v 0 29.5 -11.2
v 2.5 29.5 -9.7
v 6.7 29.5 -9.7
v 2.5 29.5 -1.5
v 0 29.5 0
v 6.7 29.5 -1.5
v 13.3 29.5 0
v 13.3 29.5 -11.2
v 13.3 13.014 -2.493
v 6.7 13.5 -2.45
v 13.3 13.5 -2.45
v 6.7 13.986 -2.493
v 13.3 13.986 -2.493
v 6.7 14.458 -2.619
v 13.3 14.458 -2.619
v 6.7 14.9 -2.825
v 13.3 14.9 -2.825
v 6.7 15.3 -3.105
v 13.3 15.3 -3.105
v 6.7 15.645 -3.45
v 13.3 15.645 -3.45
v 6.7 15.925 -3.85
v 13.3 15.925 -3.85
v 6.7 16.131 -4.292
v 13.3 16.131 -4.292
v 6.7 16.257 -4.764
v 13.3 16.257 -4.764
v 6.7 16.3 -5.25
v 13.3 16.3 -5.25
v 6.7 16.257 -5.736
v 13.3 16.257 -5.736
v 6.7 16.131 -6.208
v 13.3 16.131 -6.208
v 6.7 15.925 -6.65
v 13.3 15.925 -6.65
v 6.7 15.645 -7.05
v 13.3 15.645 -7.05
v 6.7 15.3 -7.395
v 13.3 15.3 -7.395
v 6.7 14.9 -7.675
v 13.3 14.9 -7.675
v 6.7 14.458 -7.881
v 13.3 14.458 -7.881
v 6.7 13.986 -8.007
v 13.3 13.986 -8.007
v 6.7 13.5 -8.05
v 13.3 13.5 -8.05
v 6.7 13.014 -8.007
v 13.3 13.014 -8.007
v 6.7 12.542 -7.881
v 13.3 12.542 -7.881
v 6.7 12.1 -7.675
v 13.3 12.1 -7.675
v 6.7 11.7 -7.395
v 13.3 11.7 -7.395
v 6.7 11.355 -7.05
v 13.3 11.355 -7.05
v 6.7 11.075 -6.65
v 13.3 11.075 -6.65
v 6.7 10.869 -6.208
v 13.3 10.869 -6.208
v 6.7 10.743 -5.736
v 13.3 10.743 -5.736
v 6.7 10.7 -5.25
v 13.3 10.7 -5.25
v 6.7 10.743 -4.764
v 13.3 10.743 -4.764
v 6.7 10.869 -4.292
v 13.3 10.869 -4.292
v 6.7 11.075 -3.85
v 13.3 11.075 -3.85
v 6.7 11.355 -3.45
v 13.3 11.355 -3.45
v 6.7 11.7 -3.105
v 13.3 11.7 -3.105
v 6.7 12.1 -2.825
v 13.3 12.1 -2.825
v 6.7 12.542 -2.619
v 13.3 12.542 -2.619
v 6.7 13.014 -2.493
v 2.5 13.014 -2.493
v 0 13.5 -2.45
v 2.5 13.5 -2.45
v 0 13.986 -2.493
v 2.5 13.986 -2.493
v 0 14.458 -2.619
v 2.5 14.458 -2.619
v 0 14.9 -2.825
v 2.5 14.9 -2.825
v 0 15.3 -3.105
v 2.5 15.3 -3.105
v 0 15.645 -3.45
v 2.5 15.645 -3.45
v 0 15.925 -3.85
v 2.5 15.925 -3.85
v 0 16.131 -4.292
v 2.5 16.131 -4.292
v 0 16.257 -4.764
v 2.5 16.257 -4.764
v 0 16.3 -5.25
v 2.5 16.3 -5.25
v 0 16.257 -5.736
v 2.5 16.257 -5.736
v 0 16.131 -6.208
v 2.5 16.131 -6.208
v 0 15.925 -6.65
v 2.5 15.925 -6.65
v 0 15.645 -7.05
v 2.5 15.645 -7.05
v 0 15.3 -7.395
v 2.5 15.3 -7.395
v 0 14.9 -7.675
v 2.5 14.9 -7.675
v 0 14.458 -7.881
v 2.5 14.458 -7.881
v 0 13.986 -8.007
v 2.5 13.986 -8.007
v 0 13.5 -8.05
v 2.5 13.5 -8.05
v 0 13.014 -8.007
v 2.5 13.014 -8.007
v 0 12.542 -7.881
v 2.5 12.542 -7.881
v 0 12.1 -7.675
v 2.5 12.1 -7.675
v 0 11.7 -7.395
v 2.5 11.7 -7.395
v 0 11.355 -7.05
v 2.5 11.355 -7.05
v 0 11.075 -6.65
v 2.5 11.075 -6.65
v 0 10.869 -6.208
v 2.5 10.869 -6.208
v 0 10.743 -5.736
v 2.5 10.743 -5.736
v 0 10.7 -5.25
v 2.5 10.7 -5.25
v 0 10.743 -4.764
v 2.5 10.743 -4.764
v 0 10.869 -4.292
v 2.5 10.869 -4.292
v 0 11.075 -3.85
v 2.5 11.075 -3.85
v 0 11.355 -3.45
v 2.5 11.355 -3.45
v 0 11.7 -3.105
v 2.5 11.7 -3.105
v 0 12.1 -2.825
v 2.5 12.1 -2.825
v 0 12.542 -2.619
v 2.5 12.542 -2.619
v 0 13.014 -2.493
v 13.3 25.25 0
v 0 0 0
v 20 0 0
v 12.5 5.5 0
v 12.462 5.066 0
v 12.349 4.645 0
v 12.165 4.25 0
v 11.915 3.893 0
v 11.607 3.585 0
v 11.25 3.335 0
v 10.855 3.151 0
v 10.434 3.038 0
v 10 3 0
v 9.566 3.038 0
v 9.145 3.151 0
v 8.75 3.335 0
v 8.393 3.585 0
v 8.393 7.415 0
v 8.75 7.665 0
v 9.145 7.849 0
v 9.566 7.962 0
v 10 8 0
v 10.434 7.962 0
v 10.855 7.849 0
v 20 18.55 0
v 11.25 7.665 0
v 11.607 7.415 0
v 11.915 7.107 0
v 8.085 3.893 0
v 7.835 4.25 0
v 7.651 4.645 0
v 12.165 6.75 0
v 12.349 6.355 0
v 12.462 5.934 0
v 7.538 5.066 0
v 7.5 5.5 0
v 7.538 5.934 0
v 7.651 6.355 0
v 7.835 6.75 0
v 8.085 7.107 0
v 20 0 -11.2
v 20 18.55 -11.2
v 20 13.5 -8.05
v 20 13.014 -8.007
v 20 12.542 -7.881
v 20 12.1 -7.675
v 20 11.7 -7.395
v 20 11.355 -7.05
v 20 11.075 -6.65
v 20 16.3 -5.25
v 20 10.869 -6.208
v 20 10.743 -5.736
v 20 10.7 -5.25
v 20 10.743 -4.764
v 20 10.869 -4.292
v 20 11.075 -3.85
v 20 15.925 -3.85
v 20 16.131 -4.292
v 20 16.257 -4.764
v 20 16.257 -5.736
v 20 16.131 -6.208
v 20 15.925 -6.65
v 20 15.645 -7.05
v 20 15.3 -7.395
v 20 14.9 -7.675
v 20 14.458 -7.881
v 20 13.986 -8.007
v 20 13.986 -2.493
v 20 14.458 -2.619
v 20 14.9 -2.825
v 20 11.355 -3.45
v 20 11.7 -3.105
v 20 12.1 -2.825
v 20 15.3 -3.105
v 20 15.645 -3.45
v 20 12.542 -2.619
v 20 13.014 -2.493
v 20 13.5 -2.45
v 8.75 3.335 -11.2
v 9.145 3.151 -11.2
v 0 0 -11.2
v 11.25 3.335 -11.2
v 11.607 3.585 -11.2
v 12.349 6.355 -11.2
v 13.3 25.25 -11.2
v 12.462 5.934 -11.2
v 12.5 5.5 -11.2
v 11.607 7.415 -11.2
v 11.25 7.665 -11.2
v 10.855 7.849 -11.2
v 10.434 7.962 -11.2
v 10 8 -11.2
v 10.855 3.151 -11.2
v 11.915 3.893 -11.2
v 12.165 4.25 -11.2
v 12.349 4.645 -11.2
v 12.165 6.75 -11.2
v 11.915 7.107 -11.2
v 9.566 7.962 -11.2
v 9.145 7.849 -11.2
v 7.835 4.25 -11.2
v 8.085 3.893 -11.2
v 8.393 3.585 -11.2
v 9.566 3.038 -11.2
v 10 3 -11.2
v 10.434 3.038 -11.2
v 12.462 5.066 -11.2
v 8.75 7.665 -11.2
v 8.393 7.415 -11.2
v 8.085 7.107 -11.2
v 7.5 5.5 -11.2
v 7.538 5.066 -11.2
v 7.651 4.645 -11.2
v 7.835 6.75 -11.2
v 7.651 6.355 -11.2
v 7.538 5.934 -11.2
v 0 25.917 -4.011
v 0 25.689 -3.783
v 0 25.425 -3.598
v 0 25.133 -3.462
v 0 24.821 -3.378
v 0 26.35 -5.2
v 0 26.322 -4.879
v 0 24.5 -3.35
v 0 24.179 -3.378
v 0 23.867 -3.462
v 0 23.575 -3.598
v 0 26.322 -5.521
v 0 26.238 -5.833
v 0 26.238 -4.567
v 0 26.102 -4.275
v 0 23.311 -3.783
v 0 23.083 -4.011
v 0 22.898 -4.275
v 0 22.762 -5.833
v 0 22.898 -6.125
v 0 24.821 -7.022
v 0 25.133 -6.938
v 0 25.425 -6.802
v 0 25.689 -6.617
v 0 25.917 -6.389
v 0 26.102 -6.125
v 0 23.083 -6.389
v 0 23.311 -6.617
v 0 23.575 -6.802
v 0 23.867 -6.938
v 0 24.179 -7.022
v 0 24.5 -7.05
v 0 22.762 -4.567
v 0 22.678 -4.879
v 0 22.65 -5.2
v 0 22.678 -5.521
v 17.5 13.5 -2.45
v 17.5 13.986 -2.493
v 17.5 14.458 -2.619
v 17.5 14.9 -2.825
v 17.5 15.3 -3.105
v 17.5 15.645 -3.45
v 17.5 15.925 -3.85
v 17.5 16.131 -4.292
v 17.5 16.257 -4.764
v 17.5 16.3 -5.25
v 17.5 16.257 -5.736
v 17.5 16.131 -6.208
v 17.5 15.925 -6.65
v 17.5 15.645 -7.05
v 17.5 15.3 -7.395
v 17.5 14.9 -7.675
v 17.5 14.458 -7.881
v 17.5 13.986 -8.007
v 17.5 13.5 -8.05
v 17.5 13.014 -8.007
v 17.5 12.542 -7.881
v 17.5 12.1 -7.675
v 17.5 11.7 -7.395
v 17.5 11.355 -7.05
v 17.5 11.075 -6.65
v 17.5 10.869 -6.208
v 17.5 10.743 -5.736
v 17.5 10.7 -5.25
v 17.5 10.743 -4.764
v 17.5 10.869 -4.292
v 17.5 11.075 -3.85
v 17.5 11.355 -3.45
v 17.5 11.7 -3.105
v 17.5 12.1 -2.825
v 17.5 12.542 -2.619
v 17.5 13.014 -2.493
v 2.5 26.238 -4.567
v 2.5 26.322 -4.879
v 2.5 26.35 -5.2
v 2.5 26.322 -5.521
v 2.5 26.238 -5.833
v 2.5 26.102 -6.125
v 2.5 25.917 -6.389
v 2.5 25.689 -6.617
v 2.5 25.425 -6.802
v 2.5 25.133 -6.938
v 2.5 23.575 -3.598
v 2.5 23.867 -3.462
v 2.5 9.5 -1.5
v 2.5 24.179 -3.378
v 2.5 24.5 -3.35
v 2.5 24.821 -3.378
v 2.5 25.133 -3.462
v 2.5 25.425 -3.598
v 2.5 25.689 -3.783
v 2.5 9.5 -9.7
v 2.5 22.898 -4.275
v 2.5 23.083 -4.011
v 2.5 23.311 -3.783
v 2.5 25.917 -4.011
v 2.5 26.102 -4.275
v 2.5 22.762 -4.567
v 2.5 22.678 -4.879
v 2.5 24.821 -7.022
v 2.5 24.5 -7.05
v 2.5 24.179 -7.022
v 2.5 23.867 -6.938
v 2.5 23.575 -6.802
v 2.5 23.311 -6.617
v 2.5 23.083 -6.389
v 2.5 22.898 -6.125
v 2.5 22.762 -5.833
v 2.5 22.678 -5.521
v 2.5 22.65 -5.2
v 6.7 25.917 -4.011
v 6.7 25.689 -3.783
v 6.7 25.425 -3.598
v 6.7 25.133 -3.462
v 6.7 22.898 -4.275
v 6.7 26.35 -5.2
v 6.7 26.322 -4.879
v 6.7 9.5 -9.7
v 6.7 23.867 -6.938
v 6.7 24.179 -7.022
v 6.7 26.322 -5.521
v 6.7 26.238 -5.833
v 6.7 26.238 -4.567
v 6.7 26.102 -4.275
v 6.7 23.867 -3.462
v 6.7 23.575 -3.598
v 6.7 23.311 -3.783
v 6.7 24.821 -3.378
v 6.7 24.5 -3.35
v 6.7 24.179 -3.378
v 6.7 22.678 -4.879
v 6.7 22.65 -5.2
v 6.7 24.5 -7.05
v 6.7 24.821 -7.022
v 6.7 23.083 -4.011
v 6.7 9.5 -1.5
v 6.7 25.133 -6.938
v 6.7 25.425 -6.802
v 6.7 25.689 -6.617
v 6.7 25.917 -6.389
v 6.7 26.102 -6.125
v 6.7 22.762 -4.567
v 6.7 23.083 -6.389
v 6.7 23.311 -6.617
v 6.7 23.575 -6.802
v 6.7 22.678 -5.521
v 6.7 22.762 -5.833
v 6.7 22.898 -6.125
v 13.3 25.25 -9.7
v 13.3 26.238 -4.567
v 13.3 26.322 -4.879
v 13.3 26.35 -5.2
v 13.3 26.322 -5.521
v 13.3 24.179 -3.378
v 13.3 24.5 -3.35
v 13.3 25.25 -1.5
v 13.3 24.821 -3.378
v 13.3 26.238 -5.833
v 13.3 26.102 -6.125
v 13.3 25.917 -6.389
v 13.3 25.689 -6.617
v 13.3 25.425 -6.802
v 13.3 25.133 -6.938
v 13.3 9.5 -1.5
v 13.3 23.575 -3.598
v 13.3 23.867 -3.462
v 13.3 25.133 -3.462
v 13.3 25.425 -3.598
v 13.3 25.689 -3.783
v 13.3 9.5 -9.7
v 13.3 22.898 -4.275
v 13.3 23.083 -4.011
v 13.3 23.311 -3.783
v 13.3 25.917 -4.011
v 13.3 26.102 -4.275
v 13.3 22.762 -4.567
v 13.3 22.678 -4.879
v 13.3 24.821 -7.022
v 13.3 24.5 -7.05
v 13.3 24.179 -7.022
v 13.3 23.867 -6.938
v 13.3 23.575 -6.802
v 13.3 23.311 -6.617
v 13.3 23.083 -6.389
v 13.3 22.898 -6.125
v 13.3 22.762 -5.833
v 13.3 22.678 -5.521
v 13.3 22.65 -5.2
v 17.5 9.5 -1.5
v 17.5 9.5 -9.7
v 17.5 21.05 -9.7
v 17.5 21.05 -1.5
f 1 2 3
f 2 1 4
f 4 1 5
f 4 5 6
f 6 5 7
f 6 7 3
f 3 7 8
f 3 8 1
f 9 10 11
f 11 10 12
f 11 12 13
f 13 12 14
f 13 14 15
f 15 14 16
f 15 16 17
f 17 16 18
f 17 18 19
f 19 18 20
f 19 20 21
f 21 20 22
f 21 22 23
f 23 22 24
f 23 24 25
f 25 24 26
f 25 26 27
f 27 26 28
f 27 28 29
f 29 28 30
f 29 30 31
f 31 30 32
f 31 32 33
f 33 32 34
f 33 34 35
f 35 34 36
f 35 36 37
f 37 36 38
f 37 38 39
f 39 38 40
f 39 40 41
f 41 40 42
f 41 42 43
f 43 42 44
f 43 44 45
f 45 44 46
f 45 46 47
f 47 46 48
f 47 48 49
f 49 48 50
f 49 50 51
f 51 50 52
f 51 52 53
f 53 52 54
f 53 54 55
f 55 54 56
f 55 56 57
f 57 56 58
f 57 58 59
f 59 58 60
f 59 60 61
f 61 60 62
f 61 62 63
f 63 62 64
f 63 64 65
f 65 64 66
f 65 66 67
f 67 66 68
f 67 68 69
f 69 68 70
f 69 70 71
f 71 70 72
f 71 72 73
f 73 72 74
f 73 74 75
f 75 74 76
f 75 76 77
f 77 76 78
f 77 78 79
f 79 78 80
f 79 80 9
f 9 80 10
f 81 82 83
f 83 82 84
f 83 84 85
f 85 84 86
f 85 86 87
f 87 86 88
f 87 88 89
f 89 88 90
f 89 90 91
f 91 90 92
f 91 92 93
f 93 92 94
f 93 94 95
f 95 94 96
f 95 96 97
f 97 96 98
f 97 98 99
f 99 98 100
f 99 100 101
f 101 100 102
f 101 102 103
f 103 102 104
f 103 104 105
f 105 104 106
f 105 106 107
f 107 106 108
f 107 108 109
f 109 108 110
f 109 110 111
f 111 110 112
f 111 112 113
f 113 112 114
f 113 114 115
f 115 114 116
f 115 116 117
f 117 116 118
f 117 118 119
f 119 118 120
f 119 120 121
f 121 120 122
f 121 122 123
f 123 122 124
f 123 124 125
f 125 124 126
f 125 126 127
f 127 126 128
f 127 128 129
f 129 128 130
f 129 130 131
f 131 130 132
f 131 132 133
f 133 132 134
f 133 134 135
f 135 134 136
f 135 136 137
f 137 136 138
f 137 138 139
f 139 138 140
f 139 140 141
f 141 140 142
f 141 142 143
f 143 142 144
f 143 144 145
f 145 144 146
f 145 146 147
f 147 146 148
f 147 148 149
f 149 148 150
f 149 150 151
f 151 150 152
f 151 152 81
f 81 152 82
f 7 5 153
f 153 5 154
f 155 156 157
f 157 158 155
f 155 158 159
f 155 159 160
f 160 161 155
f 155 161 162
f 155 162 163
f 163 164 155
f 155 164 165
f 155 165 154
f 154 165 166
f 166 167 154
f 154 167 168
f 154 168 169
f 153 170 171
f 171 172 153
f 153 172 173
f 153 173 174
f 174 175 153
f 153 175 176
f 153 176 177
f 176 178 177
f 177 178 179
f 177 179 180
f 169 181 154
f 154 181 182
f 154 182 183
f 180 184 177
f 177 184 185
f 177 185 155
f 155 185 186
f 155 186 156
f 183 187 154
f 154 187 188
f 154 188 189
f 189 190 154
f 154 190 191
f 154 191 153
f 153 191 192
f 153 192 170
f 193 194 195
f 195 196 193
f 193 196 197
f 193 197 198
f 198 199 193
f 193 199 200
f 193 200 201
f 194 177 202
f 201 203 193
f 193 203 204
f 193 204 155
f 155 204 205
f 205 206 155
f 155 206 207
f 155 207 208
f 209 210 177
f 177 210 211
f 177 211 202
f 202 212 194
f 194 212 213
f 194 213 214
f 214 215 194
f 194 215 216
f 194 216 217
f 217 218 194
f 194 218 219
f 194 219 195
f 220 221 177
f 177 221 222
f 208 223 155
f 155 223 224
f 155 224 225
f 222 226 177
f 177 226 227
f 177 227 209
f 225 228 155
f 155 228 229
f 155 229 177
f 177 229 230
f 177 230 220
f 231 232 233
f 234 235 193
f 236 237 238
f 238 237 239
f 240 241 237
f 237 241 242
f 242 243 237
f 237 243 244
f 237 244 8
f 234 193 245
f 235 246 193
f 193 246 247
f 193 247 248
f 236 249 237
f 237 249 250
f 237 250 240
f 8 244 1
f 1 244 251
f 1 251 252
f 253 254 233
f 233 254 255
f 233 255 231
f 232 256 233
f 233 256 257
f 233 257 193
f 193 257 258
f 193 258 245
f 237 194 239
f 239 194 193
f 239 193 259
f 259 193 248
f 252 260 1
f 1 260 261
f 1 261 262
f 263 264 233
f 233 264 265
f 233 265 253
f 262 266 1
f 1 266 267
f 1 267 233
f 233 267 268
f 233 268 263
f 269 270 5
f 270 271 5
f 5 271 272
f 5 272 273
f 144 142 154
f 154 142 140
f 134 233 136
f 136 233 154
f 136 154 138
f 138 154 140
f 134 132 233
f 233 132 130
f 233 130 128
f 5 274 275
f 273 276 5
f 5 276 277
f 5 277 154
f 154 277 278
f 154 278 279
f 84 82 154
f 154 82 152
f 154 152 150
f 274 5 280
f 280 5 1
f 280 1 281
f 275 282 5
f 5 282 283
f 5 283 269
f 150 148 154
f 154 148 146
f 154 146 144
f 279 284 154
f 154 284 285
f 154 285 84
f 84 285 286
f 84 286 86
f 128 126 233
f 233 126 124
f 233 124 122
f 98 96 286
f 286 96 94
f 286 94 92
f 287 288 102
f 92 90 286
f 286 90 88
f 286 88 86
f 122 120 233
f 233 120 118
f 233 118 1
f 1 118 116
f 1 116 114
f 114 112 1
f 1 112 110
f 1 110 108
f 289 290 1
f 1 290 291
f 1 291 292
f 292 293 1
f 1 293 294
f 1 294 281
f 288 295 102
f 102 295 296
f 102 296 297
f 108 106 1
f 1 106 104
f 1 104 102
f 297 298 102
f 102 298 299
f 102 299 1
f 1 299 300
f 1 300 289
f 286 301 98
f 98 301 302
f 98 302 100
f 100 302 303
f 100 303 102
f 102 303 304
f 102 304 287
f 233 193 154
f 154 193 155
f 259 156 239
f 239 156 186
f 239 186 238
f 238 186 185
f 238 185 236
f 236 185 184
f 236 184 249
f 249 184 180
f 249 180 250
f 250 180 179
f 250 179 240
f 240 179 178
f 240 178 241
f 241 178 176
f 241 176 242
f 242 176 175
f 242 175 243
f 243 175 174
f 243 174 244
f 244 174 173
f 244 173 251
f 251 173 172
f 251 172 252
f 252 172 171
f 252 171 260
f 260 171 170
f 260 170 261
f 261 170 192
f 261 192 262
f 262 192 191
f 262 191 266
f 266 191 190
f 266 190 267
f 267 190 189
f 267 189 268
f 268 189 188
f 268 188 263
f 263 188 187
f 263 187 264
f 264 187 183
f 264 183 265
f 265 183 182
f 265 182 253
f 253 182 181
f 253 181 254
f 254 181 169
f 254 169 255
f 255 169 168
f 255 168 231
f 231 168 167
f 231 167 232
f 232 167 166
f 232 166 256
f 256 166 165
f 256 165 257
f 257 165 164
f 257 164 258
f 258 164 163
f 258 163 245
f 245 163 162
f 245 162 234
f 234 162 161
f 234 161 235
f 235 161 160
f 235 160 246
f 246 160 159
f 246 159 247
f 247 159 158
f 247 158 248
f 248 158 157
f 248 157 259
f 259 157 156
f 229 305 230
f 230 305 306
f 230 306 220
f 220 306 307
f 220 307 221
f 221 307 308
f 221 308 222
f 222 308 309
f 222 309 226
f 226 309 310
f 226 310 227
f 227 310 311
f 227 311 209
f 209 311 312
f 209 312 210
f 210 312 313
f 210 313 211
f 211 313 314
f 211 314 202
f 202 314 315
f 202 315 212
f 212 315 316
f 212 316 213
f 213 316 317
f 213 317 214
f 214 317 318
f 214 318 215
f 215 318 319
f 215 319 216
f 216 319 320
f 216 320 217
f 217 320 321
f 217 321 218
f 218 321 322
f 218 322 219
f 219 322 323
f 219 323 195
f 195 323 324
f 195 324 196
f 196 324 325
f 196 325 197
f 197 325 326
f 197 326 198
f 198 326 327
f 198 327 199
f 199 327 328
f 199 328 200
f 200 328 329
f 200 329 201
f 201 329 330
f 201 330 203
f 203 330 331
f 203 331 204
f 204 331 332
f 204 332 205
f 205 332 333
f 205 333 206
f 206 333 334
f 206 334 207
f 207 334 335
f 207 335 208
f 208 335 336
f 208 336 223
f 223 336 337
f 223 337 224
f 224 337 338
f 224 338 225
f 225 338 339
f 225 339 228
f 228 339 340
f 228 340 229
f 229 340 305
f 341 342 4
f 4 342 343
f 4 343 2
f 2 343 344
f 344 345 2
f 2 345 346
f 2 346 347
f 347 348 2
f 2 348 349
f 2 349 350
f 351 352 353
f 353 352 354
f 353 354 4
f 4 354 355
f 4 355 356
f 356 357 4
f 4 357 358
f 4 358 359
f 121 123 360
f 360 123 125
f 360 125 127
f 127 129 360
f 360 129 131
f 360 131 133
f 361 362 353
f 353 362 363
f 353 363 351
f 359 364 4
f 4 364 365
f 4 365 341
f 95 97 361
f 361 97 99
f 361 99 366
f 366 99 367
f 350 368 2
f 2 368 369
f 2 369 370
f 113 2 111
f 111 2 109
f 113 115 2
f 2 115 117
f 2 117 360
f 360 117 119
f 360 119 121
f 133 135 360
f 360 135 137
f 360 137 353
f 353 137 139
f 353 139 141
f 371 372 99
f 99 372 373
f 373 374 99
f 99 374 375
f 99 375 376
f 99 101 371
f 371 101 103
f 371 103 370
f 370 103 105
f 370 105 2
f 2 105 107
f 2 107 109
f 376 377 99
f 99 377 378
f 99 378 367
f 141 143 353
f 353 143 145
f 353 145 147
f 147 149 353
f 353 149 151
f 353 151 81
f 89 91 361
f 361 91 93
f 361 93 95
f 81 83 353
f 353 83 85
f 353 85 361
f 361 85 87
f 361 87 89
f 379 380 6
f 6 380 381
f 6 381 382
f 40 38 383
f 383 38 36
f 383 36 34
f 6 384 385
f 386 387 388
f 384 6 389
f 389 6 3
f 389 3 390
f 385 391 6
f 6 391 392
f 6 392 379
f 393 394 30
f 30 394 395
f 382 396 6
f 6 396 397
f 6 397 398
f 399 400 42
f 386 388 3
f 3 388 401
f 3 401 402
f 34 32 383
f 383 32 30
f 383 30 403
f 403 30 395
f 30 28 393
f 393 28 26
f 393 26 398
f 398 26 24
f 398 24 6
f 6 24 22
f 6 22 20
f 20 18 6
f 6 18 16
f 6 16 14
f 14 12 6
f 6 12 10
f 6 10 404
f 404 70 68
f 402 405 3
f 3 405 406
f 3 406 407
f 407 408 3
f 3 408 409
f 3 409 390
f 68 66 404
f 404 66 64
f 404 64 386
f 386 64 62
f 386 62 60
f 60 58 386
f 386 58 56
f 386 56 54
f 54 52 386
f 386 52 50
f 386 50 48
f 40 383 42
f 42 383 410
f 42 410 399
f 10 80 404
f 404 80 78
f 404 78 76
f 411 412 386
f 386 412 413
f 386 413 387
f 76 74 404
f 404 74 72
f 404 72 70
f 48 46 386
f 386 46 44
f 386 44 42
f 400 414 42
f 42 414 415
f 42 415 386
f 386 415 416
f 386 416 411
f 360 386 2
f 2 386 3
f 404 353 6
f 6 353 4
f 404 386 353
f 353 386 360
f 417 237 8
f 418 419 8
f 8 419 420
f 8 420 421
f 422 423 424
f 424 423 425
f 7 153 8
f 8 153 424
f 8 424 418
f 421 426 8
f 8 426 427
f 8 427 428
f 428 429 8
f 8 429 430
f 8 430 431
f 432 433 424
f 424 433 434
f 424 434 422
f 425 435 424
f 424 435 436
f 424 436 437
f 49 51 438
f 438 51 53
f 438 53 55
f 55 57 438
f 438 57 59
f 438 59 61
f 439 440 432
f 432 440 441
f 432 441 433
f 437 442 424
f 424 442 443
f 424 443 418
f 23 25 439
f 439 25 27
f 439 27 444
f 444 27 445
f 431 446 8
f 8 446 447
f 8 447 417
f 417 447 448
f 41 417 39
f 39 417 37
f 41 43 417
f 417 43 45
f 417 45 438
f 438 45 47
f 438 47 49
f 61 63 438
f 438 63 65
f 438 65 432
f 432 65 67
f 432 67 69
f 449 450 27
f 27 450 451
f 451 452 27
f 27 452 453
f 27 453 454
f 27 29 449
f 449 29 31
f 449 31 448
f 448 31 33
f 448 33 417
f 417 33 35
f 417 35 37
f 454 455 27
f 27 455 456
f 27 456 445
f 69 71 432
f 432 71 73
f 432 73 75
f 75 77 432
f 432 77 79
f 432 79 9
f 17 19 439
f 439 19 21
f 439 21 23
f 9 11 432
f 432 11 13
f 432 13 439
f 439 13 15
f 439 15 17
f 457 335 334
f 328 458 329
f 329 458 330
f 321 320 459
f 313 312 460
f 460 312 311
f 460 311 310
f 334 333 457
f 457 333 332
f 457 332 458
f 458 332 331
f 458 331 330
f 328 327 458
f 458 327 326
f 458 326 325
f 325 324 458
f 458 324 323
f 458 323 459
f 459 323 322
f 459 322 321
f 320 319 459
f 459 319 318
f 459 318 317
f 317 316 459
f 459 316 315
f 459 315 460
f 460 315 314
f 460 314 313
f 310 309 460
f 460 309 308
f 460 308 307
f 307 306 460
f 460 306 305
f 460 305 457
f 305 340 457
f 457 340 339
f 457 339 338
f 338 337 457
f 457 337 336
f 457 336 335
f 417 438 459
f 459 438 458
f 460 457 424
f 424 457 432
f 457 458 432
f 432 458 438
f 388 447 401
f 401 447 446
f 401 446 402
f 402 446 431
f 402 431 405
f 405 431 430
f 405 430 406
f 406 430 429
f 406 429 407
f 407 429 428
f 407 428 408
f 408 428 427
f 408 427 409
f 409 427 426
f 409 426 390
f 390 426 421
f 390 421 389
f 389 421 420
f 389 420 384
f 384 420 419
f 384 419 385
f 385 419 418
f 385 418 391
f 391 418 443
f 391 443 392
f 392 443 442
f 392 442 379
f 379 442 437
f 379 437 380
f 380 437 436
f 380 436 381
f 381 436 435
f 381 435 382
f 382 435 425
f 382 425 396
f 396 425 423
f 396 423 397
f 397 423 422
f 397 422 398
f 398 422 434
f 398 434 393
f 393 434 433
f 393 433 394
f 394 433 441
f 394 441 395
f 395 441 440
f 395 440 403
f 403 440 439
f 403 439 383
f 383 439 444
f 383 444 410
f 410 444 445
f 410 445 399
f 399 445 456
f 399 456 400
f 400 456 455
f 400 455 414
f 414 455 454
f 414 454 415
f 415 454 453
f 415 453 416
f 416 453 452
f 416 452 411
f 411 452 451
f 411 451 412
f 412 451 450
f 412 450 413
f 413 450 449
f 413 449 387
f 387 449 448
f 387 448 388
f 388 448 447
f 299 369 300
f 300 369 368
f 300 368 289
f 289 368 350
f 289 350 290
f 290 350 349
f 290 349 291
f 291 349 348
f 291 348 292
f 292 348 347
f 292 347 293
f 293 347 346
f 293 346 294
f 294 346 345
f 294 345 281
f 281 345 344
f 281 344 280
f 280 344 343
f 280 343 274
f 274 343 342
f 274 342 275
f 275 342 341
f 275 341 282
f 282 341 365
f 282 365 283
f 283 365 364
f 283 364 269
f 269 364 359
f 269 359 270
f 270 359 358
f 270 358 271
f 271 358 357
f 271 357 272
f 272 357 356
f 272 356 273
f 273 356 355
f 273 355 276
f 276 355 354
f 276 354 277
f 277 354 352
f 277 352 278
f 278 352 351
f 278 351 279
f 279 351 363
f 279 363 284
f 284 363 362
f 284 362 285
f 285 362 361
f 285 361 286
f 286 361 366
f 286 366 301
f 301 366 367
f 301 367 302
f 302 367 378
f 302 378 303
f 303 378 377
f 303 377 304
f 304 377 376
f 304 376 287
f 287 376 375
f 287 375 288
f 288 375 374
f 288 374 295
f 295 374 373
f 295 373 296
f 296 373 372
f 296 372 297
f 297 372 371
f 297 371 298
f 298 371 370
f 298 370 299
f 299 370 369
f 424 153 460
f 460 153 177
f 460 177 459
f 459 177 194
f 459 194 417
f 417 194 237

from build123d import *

# Parameters (mm, degrees)
SKETCH6_W           = 20
SKETCH6_H           = 11.2
BOSS_EXTRUDE2_DEPTH = 29.5
SKETCH7_R           = 2.5
CUT_EXTRUDE4_DEPTH  = 38.358934674
SKETCH8_R           = 2.8
CUT_EXTRUDE5_DEPTH  = 38.358934674
SKETCH9_W           = 4.2
SKETCH9_H           = 8.2
CUT_EXTRUDE6_DEPTH  = 20
SKETCH11_R          = 1.85
CUT_EXTRUDE8_DEPTH  = 38.358934674
SKETCH12_W          = 11.2
SKETCH12_H          = 11
CUT_EXTRUDE9_DEPTH  = 6.7
CHAMFER1_SIZE       = 6.75


with BuildPart() as part:
    # Sketch6 → Boss-Extrude2 (new body)
    with BuildSketch(Plane(origin=(0, 0, 0), x_dir=(1, 0, 0), z_dir=(0, 1, 0))):
        with Locations((10, 5.6)):
            Rectangle(SKETCH6_W, SKETCH6_H)
    extrude(amount=BOSS_EXTRUDE2_DEPTH)

    # Sketch7 → Cut-Extrude4 (cut, through all)
    with BuildSketch(Plane.XY):
        with Locations((10, 5.5)):
            Circle(SKETCH7_R)
    extrude(amount=-CUT_EXTRUDE4_DEPTH, mode=Mode.SUBTRACT)

    # Sketch8 → Cut-Extrude5 (cut, through all)
    with BuildSketch(Plane.ZY):
        with Locations((-5.25, 13.5)):
            Circle(SKETCH8_R)
    extrude(amount=-CUT_EXTRUDE5_DEPTH, mode=Mode.SUBTRACT)

    # Sketch9 → Cut-Extrude6 (cut)
    with BuildSketch(Plane(origin=(0, 29.5, 0), x_dir=(1, 0, 0), z_dir=(0, 1, 0))):
        with Locations((4.6, 5.6)):
            Rectangle(SKETCH9_W, SKETCH9_H)
        with Locations((15.4, 5.6)):
            Rectangle(SKETCH9_W, SKETCH9_H)
    extrude(amount=-CUT_EXTRUDE6_DEPTH, mode=Mode.SUBTRACT)

    # Sketch11 → Cut-Extrude8 (cut, through all)
    with BuildSketch(Plane(origin=(20, 0, 0), x_dir=(0, 0, -1), z_dir=(1, 0, 0))):
        with Locations((5.2, 24.5)):
            Circle(SKETCH11_R)
    extrude(amount=-CUT_EXTRUDE8_DEPTH, mode=Mode.SUBTRACT)

    # Sketch12 → Cut-Extrude9 (cut)
    with BuildSketch(Plane(origin=(20, 0, 0), x_dir=(0, 0, -1), z_dir=(1, 0, 0))):
        with Locations((5.6, 24)):
            Rectangle(SKETCH12_W, SKETCH12_H)
    extrude(amount=-CUT_EXTRUDE9_DEPTH, mode=Mode.SUBTRACT)

    # Chamfer1
    # the kernel refuses this chamfer: 6.75 mm, written as the material it adds along each edge
    with BuildSketch(Plane(origin=(13.3, 18.5, -11.2), x_dir=(-0.027495876610586268, 0.9996219169112968, 0), z_dir=(0, 0, 1))) as chamfer1_piece_1_section:
        Polygon((CHAMFER1_SIZE * 0.999621916911, -CHAMFER1_SIZE * 0.0274958766106), (-CHAMFER1_SIZE * 0.0274958766106, -CHAMFER1_SIZE * 0.999621916911), (0, 0), align=None)
    chamfer1_piece_1 = extrude(amount=1.5, mode=Mode.PRIVATE)
    chamfer1_piece_1 = split(chamfer1_piece_1, bisect_by=Plane(origin=(17.5, 21.005794574, -10.45), z_dir=(-1, 0, 0)), keep=Keep.TOP, mode=Mode.PRIVATE)
    add(chamfer1_piece_1)
    with BuildSketch(Plane(origin=(13.3, 18.5, -11.2), x_dir=(-0.027495876610586268, 0.9996219169112968, 0), z_dir=(0, 0, 1))) as chamfer1_piece_2_section:
        Polygon((CHAMFER1_SIZE * 0.999621916911, -CHAMFER1_SIZE * 0.0274958766106), (-CHAMFER1_SIZE * 0.0274958766106, -CHAMFER1_SIZE * 0.999621916911), (0, 0), align=None)
    chamfer1_piece_2 = extrude(amount=1.5, mode=Mode.PRIVATE)
    chamfer1_piece_2 = split(chamfer1_piece_2, bisect_by=Plane(origin=(17.5, 19.207926364, -10.45), z_dir=(1, 0, 0)), keep=Keep.TOP, mode=Mode.PRIVATE)
    chamfer1_piece_2 = split(chamfer1_piece_2, bisect_by=Plane(origin=(20, 19.207926364, -10.45), z_dir=(-1, 0, 0)), keep=Keep.TOP, mode=Mode.PRIVATE)
    add(chamfer1_piece_2)
    with BuildSketch(Plane(origin=(13.3, 18.5, -11.2), x_dir=(-0.027495876610586268, 0.9996219169112968, 0), z_dir=(0, 0, 1))) as chamfer1_piece_3_section:
        Polygon((CHAMFER1_SIZE * 0.999621916911, -CHAMFER1_SIZE * 0.0274958766106), (-CHAMFER1_SIZE * 0.0274958766106, -CHAMFER1_SIZE * 0.999621916911), (0, 0), align=None)
    chamfer1_piece_3 = extrude(amount=18.858860169, mode=Mode.PRIVATE)
    chamfer1_piece_3 = split(chamfer1_piece_3, bisect_by=Plane(origin=(18.428491319, 19.207926364, -9.7), z_dir=(0, 0, 1)), keep=Keep.TOP, mode=Mode.PRIVATE)
    chamfer1_piece_3 = split(chamfer1_piece_3, bisect_by=Plane(origin=(18.428491319, 19.207926364, -1.5), z_dir=(0, 0, -1)), keep=Keep.TOP, mode=Mode.PRIVATE)
    chamfer1_piece_3 = split(chamfer1_piece_3, bisect_by=Plane(origin=(17.5, 19.207926364, -5.6), z_dir=(1, 0, 0)), keep=Keep.TOP, mode=Mode.PRIVATE)
    chamfer1_piece_3 = split(chamfer1_piece_3, bisect_by=Plane(origin=(20, 19.207926364, -5.6), z_dir=(-1, 0, 0)), keep=Keep.TOP, mode=Mode.PRIVATE)
    add(chamfer1_piece_3)
    with BuildSketch(Plane(origin=(13.3, 18.5, -11.2), x_dir=(-0.027495876610586268, 0.9996219169112968, 0), z_dir=(0, 0, 1))) as chamfer1_piece_4_section:
        Polygon((CHAMFER1_SIZE * 0.999621916911, -CHAMFER1_SIZE * 0.0274958766106), (-CHAMFER1_SIZE * 0.0274958766106, -CHAMFER1_SIZE * 0.999621916911), (0, 0), align=None)
    chamfer1_piece_4 = extrude(amount=18.858860169, mode=Mode.PRIVATE)
    chamfer1_piece_4 = split(chamfer1_piece_4, bisect_by=Plane(origin=(14.991498442, 21.005794574, 0), z_dir=(0, 0, -1)), keep=Keep.TOP, mode=Mode.PRIVATE)
    chamfer1_piece_4 = split(chamfer1_piece_4, bisect_by=Plane(origin=(14.991498442, 21.005794574, -1.5), z_dir=(0, 0, 1)), keep=Keep.TOP, mode=Mode.PRIVATE)
    chamfer1_piece_4 = split(chamfer1_piece_4, bisect_by=Plane(origin=(17.5, 21.005794574, -0.75), z_dir=(-1, 0, 0)), keep=Keep.TOP, mode=Mode.PRIVATE)
    add(chamfer1_piece_4)
    with BuildSketch(Plane(origin=(13.3, 18.5, -11.2), x_dir=(-0.027495876610586268, 0.9996219169112968, 0), z_dir=(0, 0, 1))) as chamfer1_piece_5_section:
        Polygon((CHAMFER1_SIZE * 0.999621916911, -CHAMFER1_SIZE * 0.0274958766106), (-CHAMFER1_SIZE * 0.0274958766106, -CHAMFER1_SIZE * 0.999621916911), (0, 0), align=None)
    chamfer1_piece_5 = extrude(amount=18.858860169, mode=Mode.PRIVATE)
    chamfer1_piece_5 = split(chamfer1_piece_5, bisect_by=Plane(origin=(18.428491319, 19.207926364, 0), z_dir=(0, 0, -1)), keep=Keep.TOP, mode=Mode.PRIVATE)
    chamfer1_piece_5 = split(chamfer1_piece_5, bisect_by=Plane(origin=(18.428491319, 19.207926364, -1.5), z_dir=(0, 0, 1)), keep=Keep.TOP, mode=Mode.PRIVATE)
    chamfer1_piece_5 = split(chamfer1_piece_5, bisect_by=Plane(origin=(17.5, 19.207926364, -0.75), z_dir=(1, 0, 0)), keep=Keep.TOP, mode=Mode.PRIVATE)
    chamfer1_piece_5 = split(chamfer1_piece_5, bisect_by=Plane(origin=(20, 19.207926364, -0.75), z_dir=(-1, 0, 0)), keep=Keep.TOP, mode=Mode.PRIVATE)
    add(chamfer1_piece_5)


solid = part.part
